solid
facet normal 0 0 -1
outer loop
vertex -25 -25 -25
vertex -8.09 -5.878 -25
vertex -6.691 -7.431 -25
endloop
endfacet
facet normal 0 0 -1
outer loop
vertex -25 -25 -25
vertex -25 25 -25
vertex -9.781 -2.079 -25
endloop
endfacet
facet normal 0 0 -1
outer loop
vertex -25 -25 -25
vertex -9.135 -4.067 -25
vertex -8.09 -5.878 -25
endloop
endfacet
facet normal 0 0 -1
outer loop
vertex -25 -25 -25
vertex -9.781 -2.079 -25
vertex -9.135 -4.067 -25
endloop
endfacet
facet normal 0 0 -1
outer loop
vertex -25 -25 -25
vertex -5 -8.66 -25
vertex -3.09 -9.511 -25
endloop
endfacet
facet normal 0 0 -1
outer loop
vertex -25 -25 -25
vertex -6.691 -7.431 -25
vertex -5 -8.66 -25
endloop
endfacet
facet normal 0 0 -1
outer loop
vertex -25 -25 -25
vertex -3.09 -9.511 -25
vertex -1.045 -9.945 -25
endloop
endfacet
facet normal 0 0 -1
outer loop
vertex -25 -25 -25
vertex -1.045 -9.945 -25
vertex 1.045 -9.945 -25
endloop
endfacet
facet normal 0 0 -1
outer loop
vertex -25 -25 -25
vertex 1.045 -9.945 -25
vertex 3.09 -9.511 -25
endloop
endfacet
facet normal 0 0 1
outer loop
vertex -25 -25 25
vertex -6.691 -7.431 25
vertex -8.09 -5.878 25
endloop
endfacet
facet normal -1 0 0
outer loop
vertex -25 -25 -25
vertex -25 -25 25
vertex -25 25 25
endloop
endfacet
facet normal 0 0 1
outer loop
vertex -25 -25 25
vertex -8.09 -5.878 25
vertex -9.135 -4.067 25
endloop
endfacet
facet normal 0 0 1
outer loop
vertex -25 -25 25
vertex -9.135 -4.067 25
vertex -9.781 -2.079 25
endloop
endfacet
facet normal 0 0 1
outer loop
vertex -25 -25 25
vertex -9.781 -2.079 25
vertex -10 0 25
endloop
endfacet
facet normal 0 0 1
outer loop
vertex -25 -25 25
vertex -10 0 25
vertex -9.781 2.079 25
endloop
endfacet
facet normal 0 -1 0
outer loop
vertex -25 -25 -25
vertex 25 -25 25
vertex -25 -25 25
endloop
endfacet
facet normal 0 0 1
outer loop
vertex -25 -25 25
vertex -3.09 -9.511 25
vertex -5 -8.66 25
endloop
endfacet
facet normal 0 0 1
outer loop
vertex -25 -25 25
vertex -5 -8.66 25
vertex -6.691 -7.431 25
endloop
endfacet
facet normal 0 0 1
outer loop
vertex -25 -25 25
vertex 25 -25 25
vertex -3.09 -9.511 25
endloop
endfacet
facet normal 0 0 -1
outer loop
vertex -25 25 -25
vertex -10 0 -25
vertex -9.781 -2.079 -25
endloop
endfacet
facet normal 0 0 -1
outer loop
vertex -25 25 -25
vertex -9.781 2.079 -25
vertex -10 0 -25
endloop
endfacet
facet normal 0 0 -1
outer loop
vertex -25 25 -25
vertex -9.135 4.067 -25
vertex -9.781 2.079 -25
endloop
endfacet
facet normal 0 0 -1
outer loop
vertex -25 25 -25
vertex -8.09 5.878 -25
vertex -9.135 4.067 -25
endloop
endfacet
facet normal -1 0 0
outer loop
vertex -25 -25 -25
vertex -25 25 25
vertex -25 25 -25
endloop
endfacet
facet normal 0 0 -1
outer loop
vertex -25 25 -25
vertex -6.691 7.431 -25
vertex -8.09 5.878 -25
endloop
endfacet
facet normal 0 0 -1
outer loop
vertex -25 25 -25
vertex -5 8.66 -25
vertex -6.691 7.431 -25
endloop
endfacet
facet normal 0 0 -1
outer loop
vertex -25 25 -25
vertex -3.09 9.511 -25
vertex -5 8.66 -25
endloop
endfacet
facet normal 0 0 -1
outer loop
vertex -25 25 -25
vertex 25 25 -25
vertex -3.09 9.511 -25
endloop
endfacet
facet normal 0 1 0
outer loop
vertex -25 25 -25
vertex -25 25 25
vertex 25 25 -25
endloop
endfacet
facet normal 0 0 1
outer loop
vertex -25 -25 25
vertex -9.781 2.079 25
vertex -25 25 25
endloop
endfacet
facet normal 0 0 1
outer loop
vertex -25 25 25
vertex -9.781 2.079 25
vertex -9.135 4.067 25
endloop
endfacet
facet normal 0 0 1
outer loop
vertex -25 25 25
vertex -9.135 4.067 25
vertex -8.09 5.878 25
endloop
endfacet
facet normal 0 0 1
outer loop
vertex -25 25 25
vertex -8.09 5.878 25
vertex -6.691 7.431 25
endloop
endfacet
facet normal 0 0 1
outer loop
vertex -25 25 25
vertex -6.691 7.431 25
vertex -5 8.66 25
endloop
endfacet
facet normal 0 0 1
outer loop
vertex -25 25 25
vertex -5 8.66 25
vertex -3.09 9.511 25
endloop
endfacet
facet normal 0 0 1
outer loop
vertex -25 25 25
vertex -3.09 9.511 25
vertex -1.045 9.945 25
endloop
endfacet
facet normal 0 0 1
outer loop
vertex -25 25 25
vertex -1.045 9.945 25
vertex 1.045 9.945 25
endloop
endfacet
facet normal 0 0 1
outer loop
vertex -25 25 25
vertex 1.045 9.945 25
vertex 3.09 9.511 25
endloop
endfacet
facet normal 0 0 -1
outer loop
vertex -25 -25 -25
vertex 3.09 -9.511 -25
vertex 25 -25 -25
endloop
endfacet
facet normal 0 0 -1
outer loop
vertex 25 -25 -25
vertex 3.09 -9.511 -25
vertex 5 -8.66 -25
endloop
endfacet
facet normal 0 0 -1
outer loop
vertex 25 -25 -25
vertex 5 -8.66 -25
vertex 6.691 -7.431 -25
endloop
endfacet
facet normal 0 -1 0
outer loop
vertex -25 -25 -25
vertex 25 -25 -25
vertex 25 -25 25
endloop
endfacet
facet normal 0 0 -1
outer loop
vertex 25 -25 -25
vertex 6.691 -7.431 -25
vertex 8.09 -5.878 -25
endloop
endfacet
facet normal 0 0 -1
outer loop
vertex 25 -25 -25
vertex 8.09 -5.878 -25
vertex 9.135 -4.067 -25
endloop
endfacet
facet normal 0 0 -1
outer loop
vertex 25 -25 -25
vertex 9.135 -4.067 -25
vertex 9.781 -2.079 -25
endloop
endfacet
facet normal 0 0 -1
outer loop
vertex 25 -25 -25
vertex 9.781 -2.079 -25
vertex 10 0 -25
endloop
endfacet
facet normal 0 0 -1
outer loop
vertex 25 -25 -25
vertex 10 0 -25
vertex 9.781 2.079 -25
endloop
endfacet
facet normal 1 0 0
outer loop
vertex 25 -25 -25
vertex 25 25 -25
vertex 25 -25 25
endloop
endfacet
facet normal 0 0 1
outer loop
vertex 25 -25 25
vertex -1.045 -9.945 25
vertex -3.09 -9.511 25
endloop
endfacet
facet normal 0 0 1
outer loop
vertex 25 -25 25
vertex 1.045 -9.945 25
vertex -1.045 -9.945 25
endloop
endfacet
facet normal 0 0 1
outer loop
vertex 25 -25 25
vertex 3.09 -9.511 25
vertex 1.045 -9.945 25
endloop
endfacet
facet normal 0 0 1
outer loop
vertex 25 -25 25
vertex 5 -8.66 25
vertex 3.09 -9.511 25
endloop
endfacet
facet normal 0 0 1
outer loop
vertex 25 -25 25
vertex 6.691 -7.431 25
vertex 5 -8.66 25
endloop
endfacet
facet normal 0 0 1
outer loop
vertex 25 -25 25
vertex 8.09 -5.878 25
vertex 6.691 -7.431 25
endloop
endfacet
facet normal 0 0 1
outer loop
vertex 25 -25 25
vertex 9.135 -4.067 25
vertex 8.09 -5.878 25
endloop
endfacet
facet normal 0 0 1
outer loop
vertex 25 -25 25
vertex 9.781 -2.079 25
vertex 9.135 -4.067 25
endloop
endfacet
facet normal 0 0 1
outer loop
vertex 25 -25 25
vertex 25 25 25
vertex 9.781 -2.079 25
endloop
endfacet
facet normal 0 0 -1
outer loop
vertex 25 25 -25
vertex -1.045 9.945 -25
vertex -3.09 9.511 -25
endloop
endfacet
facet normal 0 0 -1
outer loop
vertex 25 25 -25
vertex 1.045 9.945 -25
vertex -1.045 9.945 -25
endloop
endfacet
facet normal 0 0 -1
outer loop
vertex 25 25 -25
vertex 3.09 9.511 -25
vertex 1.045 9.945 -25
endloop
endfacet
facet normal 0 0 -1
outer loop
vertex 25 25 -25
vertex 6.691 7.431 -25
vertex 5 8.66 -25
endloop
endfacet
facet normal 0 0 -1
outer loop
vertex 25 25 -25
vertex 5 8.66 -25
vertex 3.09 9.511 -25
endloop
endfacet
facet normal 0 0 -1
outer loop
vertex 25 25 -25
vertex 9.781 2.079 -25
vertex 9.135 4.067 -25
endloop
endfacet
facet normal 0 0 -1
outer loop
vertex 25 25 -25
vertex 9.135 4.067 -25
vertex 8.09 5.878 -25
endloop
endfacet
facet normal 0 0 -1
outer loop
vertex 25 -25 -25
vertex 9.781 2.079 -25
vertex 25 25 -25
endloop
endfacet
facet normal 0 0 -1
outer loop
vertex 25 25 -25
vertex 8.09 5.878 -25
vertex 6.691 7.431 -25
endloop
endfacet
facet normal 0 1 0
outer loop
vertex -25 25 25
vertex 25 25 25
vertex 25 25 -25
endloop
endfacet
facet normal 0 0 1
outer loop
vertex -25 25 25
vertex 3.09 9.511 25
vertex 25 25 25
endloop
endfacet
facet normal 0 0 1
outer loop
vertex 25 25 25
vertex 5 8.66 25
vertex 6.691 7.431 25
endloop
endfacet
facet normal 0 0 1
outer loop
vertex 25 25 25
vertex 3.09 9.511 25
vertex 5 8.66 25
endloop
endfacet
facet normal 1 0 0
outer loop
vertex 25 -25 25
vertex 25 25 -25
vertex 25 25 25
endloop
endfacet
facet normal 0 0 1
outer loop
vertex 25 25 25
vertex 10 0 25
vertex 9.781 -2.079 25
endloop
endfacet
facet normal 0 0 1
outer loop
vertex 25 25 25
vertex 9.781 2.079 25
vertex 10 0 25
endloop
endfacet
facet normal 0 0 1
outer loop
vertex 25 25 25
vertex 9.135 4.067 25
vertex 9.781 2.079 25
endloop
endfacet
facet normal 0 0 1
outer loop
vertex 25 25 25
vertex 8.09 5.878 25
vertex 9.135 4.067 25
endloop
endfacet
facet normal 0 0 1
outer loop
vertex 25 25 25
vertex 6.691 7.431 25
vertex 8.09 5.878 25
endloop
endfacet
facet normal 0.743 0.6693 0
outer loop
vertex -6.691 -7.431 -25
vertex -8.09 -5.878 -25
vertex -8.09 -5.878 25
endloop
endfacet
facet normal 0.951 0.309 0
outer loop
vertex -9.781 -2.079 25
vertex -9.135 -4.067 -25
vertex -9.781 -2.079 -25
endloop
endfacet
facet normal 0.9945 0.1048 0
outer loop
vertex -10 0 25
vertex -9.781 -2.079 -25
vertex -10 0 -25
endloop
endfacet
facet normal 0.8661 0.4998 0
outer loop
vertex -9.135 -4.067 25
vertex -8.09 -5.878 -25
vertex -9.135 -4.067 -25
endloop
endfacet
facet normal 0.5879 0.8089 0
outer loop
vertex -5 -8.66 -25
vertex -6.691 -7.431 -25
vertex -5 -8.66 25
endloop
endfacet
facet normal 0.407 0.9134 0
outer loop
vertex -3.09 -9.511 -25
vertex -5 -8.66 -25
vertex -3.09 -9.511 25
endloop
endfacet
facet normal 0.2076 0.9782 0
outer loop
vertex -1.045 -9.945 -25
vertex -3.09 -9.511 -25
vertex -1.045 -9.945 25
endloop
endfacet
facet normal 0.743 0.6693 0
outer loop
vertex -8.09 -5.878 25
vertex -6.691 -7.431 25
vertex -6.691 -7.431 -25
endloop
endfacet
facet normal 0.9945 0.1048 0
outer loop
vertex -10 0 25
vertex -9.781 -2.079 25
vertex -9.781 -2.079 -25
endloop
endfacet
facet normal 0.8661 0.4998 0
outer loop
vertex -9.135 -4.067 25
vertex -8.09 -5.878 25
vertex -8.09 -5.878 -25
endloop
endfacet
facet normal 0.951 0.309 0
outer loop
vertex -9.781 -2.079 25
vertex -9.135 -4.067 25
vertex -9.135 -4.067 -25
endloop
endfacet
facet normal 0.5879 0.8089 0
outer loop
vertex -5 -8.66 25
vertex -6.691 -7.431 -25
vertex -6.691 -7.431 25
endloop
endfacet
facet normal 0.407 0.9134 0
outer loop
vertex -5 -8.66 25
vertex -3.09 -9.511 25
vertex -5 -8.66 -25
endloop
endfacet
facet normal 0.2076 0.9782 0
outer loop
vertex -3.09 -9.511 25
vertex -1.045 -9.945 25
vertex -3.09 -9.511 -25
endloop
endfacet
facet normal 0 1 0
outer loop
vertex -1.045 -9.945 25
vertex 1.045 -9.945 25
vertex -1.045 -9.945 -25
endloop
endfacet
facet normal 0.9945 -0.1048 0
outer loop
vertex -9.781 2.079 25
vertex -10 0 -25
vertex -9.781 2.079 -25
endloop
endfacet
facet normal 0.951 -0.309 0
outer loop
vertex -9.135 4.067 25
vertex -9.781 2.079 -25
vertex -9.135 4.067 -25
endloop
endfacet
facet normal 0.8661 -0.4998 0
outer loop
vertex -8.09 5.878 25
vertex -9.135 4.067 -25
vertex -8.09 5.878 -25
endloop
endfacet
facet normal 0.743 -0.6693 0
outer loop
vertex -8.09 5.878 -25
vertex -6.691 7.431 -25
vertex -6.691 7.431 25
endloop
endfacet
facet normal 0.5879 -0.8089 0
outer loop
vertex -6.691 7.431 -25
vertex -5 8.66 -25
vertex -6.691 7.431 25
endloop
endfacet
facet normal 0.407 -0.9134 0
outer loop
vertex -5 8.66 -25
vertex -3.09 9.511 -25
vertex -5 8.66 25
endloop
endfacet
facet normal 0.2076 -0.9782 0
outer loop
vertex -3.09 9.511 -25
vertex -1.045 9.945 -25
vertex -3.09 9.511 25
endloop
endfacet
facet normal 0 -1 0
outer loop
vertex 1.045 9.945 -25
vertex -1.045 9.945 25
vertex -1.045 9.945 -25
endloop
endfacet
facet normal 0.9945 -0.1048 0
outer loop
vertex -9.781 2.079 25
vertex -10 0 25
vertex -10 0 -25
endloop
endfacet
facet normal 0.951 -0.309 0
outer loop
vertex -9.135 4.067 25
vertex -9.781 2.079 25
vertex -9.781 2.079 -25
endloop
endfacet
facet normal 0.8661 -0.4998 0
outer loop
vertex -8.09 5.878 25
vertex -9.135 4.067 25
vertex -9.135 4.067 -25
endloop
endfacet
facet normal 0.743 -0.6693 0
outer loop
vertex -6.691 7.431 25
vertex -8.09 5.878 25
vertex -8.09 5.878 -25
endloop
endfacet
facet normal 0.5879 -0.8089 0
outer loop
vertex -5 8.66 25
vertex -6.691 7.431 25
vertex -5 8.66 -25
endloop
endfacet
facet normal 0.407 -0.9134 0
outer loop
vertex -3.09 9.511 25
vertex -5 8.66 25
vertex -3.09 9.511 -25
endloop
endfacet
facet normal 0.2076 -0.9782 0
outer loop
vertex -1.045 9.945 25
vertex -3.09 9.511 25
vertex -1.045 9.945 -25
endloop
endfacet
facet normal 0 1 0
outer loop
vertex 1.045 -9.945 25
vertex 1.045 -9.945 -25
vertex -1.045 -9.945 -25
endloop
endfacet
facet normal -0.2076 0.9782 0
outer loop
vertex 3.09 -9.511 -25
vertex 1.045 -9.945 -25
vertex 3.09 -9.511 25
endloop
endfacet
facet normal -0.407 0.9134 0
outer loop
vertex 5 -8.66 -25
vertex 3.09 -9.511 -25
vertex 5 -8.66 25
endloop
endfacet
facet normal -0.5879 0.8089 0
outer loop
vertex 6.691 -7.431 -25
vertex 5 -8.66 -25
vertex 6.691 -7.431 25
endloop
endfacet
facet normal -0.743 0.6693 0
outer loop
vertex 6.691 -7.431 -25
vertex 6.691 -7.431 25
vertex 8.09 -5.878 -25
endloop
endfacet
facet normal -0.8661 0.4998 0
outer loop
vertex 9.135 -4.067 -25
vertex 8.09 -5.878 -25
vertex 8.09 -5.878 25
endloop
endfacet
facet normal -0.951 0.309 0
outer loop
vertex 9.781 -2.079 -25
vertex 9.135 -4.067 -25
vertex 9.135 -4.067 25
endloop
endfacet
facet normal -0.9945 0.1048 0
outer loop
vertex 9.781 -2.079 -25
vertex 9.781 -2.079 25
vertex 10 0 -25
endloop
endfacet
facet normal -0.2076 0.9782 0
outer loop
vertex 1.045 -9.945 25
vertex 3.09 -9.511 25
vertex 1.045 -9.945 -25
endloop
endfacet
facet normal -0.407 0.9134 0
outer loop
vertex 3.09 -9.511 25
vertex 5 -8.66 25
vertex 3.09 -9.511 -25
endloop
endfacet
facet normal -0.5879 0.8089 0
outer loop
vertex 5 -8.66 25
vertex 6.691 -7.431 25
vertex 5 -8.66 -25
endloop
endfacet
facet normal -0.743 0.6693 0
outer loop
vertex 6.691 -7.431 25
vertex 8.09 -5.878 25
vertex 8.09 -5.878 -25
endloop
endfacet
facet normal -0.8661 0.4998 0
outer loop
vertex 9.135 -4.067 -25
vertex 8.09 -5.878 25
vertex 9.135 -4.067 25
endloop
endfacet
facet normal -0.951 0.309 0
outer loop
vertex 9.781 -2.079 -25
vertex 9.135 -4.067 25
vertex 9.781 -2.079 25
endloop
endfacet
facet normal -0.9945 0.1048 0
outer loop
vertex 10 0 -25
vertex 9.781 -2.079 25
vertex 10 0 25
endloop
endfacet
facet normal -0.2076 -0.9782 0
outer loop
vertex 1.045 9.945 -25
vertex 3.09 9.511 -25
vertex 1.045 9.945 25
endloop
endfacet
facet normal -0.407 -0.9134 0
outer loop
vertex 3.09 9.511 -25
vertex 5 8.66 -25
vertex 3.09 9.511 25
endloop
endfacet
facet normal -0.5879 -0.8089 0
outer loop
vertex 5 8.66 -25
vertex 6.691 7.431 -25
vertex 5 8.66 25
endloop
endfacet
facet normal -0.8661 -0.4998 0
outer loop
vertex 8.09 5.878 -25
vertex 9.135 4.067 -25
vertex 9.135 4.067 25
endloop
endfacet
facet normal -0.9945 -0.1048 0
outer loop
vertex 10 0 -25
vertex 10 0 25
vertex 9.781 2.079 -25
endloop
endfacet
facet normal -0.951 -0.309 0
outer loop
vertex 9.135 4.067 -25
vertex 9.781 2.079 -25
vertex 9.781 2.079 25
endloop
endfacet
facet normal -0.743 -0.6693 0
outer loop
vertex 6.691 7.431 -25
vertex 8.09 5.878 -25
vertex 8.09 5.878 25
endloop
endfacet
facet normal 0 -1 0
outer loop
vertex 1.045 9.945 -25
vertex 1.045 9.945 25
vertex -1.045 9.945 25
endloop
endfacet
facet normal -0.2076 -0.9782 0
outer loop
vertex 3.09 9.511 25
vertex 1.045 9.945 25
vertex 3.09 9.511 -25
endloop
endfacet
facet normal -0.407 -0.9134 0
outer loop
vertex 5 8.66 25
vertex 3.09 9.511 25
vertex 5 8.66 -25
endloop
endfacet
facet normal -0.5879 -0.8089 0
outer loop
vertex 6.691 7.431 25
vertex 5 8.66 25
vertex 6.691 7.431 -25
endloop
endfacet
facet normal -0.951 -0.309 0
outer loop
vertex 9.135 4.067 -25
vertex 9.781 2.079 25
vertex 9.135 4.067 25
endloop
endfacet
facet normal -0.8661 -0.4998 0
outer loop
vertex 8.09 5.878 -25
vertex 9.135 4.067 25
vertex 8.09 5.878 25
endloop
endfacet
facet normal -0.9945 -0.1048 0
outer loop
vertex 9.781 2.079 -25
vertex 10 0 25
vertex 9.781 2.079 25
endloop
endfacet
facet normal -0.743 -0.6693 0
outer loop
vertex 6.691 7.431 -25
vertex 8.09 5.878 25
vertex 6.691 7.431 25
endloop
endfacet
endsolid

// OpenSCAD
difference() {
    cube([50, 50, 50], center=true);
    cylinder(h=60, d=20, center=true);
}
